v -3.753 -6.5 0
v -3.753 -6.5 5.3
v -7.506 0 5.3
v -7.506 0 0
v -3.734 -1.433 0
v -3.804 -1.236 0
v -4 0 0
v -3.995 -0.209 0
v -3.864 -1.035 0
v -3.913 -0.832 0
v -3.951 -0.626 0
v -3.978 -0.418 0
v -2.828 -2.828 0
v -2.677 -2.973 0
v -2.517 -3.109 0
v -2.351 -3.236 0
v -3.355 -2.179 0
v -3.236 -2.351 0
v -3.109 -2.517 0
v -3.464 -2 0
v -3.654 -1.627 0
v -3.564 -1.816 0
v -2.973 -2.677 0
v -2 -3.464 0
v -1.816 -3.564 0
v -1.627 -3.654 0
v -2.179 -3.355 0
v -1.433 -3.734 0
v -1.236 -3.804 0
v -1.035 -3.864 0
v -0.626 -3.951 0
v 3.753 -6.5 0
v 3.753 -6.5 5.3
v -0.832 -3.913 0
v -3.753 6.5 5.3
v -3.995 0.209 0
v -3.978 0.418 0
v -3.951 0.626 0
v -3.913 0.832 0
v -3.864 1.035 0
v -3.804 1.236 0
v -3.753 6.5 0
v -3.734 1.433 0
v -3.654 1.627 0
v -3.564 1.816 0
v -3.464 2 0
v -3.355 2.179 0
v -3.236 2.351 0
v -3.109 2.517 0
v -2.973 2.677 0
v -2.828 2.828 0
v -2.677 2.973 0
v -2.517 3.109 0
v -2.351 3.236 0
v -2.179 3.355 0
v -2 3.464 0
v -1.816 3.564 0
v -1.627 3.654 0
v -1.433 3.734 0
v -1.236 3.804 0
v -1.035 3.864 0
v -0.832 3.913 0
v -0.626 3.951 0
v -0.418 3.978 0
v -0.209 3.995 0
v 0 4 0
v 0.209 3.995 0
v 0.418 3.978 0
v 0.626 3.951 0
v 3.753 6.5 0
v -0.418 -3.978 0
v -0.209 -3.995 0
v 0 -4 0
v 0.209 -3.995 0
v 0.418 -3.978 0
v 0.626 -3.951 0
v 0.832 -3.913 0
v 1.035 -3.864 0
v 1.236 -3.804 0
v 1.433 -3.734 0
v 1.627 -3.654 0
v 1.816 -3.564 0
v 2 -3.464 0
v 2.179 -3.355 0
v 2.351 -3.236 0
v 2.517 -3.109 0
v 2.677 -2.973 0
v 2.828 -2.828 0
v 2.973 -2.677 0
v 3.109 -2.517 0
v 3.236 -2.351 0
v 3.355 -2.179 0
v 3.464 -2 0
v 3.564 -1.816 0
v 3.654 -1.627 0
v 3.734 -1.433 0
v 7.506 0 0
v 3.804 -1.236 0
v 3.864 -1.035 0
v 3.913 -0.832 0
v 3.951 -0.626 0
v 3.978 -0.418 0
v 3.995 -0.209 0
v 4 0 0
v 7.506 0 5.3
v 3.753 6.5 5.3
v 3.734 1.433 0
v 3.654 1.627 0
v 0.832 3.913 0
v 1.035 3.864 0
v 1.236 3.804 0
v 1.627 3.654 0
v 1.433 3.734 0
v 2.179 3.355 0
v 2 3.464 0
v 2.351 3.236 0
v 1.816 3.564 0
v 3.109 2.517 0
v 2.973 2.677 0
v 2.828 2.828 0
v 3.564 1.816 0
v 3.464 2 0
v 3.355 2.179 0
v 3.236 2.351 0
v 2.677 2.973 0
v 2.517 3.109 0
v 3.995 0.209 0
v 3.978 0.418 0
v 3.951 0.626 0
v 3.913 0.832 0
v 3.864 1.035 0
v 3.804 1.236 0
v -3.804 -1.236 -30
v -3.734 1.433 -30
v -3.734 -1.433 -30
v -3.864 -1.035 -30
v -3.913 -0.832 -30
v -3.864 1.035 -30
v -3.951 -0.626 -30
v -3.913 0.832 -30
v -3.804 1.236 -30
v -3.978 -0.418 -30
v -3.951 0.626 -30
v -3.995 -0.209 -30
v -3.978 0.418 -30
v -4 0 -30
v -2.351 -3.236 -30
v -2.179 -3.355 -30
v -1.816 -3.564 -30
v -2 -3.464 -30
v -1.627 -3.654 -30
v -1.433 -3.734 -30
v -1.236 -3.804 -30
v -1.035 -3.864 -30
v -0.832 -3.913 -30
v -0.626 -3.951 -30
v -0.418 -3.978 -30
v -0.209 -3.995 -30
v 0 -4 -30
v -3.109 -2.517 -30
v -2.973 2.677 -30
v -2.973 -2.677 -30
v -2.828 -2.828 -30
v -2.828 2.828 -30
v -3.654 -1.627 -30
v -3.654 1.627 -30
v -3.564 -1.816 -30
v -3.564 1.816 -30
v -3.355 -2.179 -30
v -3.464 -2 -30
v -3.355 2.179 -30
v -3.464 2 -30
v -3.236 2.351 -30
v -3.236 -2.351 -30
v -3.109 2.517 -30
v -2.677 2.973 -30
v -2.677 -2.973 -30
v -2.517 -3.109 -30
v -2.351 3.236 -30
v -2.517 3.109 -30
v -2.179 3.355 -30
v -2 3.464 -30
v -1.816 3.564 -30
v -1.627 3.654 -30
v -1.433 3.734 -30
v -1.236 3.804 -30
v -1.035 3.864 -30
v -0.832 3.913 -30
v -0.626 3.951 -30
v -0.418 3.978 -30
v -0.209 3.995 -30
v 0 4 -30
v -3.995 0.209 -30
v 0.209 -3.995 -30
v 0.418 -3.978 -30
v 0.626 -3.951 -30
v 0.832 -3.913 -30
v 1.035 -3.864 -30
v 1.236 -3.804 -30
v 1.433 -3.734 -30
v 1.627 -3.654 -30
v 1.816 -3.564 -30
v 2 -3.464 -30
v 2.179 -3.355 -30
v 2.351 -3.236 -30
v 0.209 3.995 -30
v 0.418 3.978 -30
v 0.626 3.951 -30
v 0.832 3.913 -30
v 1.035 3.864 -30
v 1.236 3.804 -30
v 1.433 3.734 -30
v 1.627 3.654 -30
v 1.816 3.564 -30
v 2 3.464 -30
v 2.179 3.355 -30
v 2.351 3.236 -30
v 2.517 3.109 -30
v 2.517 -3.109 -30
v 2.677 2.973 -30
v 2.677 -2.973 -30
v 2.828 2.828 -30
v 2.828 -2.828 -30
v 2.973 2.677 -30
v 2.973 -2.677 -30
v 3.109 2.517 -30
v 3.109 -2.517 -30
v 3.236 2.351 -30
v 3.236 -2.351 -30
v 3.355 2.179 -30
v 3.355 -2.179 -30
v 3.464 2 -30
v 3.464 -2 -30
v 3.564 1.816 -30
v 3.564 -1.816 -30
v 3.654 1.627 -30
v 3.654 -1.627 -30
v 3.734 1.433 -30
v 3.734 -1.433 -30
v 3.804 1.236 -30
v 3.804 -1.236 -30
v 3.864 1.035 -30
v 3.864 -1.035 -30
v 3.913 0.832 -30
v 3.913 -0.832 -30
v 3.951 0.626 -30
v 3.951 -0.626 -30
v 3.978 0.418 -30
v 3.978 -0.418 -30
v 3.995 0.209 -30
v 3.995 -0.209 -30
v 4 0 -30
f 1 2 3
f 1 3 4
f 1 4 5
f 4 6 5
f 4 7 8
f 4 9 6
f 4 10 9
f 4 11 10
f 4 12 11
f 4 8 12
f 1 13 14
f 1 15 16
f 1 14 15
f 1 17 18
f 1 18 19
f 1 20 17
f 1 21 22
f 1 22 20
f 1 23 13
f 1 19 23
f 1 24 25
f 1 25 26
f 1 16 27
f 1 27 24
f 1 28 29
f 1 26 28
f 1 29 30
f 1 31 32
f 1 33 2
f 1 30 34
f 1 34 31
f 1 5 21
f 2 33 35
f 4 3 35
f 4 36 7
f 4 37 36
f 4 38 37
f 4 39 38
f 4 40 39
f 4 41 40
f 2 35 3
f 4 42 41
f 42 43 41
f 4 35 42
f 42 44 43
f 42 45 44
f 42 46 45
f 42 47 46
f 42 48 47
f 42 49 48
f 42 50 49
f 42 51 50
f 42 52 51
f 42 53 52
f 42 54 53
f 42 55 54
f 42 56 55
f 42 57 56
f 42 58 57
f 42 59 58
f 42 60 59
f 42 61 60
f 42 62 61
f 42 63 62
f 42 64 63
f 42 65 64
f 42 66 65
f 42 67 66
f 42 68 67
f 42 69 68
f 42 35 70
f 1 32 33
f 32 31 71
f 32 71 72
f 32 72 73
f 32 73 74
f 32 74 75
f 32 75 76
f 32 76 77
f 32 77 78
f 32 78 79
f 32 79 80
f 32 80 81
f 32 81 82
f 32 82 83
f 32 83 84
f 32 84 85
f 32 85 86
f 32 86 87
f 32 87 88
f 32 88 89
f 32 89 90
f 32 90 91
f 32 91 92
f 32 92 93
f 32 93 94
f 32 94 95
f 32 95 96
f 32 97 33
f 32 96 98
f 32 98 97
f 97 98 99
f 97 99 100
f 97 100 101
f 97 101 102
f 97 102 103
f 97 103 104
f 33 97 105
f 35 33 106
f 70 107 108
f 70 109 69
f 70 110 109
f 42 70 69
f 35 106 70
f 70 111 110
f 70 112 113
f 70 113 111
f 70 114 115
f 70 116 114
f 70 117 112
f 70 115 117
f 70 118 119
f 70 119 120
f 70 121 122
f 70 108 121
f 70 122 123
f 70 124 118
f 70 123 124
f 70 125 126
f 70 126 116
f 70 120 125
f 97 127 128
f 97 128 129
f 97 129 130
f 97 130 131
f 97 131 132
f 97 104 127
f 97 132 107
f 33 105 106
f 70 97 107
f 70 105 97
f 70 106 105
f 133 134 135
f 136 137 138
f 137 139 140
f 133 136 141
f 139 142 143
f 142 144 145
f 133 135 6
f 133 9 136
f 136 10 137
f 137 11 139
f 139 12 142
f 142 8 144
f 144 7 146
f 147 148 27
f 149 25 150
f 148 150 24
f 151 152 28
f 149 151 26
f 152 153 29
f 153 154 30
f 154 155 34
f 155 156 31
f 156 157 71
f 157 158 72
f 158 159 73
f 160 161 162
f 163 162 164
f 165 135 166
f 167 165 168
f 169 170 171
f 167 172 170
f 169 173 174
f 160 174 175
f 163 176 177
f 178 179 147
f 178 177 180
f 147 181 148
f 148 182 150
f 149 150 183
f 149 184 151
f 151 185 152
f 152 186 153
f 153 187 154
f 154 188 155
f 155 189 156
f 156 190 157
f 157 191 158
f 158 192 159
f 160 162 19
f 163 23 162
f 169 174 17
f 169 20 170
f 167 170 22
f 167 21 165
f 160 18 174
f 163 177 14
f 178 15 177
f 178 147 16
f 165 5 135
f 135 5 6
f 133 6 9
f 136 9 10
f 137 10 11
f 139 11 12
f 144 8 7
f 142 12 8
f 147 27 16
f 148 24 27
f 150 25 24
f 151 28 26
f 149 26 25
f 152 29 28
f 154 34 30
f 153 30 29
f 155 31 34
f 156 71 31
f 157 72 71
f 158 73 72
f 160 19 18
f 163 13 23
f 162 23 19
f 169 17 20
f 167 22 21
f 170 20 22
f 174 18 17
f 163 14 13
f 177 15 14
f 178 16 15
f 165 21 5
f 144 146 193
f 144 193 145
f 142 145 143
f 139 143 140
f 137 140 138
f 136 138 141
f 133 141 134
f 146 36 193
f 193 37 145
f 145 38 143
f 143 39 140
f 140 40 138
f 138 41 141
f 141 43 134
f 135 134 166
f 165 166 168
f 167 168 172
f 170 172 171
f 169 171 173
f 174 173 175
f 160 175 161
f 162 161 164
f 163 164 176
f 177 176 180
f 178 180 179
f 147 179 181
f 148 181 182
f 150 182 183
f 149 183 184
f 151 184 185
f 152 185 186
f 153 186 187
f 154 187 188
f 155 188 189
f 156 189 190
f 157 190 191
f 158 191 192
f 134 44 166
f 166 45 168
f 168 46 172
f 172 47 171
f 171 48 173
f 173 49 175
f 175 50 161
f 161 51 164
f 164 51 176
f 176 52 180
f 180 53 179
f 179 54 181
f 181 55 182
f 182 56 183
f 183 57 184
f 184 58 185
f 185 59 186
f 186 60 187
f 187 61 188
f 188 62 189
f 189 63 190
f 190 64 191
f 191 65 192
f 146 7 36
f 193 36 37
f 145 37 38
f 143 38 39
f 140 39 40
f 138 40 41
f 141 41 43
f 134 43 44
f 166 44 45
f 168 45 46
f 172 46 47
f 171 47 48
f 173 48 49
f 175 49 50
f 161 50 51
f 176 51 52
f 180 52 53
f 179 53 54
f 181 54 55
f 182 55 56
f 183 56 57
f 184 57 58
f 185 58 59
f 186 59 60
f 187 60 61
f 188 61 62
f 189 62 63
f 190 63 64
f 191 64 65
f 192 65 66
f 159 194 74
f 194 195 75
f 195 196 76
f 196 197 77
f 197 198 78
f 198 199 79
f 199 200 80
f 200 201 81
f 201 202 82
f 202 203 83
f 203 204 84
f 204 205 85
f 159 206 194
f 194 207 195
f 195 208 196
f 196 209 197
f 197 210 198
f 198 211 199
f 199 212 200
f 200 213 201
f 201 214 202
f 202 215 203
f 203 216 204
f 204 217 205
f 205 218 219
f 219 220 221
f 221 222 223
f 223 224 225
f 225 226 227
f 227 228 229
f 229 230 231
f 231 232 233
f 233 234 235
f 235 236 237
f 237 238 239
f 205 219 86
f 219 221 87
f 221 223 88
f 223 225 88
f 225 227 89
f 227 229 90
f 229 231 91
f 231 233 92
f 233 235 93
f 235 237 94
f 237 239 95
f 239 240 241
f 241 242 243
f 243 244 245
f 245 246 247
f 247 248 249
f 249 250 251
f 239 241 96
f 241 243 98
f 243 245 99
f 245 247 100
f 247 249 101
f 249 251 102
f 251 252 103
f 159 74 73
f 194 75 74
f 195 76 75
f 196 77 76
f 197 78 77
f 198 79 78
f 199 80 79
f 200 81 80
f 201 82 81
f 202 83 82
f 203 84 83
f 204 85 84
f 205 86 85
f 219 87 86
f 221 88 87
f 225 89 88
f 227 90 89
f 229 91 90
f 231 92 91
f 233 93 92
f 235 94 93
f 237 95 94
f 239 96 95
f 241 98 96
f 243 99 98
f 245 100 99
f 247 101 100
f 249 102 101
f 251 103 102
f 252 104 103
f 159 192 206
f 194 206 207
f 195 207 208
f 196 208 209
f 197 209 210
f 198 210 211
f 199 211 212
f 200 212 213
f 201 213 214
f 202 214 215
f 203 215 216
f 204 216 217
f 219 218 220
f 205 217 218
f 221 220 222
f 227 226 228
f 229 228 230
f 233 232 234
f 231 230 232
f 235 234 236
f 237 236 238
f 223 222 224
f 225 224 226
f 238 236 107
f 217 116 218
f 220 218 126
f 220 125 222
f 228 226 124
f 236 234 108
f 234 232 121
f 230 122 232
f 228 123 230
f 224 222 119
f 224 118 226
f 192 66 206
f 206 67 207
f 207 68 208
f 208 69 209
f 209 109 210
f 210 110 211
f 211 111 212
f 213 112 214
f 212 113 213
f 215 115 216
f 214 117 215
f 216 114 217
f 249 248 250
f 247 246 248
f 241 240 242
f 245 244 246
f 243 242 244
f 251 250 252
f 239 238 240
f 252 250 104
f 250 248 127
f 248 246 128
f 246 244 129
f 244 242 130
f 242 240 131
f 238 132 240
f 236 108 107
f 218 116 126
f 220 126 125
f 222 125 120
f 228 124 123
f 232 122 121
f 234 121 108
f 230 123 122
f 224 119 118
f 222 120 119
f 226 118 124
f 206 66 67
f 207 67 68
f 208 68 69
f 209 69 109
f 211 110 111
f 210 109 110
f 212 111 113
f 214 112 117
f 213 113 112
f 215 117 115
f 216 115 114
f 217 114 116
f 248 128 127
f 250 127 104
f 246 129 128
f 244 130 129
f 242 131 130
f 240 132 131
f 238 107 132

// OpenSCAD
// M8 hex bolt (ISO 4014 style, threads omitted)

// ---- Parameters ----
head_af     = 13;    // across-flats [mm]
head_height = 5.3;   // head height [mm]
shank_dia   = 8;     // shank diameter [mm]
shank_len   = 30;    // shank length [mm]

$fn = 120;

// ---- Model ----
module hex_head(af, h) {
    // circumscribed-circle diameter from across-flats
    cylinder(h = h, d = af / cos(180 / 6), $fn = 6);
}

module m8_bolt() {
    // head: bottom face at z = 0, extends to +Z
    hex_head(head_af, head_height);

    // shank: extends to -Z
    translate([0, 0, -shank_len])
        cylinder(h = shank_len, d = shank_dia);
}

m8_bolt();
